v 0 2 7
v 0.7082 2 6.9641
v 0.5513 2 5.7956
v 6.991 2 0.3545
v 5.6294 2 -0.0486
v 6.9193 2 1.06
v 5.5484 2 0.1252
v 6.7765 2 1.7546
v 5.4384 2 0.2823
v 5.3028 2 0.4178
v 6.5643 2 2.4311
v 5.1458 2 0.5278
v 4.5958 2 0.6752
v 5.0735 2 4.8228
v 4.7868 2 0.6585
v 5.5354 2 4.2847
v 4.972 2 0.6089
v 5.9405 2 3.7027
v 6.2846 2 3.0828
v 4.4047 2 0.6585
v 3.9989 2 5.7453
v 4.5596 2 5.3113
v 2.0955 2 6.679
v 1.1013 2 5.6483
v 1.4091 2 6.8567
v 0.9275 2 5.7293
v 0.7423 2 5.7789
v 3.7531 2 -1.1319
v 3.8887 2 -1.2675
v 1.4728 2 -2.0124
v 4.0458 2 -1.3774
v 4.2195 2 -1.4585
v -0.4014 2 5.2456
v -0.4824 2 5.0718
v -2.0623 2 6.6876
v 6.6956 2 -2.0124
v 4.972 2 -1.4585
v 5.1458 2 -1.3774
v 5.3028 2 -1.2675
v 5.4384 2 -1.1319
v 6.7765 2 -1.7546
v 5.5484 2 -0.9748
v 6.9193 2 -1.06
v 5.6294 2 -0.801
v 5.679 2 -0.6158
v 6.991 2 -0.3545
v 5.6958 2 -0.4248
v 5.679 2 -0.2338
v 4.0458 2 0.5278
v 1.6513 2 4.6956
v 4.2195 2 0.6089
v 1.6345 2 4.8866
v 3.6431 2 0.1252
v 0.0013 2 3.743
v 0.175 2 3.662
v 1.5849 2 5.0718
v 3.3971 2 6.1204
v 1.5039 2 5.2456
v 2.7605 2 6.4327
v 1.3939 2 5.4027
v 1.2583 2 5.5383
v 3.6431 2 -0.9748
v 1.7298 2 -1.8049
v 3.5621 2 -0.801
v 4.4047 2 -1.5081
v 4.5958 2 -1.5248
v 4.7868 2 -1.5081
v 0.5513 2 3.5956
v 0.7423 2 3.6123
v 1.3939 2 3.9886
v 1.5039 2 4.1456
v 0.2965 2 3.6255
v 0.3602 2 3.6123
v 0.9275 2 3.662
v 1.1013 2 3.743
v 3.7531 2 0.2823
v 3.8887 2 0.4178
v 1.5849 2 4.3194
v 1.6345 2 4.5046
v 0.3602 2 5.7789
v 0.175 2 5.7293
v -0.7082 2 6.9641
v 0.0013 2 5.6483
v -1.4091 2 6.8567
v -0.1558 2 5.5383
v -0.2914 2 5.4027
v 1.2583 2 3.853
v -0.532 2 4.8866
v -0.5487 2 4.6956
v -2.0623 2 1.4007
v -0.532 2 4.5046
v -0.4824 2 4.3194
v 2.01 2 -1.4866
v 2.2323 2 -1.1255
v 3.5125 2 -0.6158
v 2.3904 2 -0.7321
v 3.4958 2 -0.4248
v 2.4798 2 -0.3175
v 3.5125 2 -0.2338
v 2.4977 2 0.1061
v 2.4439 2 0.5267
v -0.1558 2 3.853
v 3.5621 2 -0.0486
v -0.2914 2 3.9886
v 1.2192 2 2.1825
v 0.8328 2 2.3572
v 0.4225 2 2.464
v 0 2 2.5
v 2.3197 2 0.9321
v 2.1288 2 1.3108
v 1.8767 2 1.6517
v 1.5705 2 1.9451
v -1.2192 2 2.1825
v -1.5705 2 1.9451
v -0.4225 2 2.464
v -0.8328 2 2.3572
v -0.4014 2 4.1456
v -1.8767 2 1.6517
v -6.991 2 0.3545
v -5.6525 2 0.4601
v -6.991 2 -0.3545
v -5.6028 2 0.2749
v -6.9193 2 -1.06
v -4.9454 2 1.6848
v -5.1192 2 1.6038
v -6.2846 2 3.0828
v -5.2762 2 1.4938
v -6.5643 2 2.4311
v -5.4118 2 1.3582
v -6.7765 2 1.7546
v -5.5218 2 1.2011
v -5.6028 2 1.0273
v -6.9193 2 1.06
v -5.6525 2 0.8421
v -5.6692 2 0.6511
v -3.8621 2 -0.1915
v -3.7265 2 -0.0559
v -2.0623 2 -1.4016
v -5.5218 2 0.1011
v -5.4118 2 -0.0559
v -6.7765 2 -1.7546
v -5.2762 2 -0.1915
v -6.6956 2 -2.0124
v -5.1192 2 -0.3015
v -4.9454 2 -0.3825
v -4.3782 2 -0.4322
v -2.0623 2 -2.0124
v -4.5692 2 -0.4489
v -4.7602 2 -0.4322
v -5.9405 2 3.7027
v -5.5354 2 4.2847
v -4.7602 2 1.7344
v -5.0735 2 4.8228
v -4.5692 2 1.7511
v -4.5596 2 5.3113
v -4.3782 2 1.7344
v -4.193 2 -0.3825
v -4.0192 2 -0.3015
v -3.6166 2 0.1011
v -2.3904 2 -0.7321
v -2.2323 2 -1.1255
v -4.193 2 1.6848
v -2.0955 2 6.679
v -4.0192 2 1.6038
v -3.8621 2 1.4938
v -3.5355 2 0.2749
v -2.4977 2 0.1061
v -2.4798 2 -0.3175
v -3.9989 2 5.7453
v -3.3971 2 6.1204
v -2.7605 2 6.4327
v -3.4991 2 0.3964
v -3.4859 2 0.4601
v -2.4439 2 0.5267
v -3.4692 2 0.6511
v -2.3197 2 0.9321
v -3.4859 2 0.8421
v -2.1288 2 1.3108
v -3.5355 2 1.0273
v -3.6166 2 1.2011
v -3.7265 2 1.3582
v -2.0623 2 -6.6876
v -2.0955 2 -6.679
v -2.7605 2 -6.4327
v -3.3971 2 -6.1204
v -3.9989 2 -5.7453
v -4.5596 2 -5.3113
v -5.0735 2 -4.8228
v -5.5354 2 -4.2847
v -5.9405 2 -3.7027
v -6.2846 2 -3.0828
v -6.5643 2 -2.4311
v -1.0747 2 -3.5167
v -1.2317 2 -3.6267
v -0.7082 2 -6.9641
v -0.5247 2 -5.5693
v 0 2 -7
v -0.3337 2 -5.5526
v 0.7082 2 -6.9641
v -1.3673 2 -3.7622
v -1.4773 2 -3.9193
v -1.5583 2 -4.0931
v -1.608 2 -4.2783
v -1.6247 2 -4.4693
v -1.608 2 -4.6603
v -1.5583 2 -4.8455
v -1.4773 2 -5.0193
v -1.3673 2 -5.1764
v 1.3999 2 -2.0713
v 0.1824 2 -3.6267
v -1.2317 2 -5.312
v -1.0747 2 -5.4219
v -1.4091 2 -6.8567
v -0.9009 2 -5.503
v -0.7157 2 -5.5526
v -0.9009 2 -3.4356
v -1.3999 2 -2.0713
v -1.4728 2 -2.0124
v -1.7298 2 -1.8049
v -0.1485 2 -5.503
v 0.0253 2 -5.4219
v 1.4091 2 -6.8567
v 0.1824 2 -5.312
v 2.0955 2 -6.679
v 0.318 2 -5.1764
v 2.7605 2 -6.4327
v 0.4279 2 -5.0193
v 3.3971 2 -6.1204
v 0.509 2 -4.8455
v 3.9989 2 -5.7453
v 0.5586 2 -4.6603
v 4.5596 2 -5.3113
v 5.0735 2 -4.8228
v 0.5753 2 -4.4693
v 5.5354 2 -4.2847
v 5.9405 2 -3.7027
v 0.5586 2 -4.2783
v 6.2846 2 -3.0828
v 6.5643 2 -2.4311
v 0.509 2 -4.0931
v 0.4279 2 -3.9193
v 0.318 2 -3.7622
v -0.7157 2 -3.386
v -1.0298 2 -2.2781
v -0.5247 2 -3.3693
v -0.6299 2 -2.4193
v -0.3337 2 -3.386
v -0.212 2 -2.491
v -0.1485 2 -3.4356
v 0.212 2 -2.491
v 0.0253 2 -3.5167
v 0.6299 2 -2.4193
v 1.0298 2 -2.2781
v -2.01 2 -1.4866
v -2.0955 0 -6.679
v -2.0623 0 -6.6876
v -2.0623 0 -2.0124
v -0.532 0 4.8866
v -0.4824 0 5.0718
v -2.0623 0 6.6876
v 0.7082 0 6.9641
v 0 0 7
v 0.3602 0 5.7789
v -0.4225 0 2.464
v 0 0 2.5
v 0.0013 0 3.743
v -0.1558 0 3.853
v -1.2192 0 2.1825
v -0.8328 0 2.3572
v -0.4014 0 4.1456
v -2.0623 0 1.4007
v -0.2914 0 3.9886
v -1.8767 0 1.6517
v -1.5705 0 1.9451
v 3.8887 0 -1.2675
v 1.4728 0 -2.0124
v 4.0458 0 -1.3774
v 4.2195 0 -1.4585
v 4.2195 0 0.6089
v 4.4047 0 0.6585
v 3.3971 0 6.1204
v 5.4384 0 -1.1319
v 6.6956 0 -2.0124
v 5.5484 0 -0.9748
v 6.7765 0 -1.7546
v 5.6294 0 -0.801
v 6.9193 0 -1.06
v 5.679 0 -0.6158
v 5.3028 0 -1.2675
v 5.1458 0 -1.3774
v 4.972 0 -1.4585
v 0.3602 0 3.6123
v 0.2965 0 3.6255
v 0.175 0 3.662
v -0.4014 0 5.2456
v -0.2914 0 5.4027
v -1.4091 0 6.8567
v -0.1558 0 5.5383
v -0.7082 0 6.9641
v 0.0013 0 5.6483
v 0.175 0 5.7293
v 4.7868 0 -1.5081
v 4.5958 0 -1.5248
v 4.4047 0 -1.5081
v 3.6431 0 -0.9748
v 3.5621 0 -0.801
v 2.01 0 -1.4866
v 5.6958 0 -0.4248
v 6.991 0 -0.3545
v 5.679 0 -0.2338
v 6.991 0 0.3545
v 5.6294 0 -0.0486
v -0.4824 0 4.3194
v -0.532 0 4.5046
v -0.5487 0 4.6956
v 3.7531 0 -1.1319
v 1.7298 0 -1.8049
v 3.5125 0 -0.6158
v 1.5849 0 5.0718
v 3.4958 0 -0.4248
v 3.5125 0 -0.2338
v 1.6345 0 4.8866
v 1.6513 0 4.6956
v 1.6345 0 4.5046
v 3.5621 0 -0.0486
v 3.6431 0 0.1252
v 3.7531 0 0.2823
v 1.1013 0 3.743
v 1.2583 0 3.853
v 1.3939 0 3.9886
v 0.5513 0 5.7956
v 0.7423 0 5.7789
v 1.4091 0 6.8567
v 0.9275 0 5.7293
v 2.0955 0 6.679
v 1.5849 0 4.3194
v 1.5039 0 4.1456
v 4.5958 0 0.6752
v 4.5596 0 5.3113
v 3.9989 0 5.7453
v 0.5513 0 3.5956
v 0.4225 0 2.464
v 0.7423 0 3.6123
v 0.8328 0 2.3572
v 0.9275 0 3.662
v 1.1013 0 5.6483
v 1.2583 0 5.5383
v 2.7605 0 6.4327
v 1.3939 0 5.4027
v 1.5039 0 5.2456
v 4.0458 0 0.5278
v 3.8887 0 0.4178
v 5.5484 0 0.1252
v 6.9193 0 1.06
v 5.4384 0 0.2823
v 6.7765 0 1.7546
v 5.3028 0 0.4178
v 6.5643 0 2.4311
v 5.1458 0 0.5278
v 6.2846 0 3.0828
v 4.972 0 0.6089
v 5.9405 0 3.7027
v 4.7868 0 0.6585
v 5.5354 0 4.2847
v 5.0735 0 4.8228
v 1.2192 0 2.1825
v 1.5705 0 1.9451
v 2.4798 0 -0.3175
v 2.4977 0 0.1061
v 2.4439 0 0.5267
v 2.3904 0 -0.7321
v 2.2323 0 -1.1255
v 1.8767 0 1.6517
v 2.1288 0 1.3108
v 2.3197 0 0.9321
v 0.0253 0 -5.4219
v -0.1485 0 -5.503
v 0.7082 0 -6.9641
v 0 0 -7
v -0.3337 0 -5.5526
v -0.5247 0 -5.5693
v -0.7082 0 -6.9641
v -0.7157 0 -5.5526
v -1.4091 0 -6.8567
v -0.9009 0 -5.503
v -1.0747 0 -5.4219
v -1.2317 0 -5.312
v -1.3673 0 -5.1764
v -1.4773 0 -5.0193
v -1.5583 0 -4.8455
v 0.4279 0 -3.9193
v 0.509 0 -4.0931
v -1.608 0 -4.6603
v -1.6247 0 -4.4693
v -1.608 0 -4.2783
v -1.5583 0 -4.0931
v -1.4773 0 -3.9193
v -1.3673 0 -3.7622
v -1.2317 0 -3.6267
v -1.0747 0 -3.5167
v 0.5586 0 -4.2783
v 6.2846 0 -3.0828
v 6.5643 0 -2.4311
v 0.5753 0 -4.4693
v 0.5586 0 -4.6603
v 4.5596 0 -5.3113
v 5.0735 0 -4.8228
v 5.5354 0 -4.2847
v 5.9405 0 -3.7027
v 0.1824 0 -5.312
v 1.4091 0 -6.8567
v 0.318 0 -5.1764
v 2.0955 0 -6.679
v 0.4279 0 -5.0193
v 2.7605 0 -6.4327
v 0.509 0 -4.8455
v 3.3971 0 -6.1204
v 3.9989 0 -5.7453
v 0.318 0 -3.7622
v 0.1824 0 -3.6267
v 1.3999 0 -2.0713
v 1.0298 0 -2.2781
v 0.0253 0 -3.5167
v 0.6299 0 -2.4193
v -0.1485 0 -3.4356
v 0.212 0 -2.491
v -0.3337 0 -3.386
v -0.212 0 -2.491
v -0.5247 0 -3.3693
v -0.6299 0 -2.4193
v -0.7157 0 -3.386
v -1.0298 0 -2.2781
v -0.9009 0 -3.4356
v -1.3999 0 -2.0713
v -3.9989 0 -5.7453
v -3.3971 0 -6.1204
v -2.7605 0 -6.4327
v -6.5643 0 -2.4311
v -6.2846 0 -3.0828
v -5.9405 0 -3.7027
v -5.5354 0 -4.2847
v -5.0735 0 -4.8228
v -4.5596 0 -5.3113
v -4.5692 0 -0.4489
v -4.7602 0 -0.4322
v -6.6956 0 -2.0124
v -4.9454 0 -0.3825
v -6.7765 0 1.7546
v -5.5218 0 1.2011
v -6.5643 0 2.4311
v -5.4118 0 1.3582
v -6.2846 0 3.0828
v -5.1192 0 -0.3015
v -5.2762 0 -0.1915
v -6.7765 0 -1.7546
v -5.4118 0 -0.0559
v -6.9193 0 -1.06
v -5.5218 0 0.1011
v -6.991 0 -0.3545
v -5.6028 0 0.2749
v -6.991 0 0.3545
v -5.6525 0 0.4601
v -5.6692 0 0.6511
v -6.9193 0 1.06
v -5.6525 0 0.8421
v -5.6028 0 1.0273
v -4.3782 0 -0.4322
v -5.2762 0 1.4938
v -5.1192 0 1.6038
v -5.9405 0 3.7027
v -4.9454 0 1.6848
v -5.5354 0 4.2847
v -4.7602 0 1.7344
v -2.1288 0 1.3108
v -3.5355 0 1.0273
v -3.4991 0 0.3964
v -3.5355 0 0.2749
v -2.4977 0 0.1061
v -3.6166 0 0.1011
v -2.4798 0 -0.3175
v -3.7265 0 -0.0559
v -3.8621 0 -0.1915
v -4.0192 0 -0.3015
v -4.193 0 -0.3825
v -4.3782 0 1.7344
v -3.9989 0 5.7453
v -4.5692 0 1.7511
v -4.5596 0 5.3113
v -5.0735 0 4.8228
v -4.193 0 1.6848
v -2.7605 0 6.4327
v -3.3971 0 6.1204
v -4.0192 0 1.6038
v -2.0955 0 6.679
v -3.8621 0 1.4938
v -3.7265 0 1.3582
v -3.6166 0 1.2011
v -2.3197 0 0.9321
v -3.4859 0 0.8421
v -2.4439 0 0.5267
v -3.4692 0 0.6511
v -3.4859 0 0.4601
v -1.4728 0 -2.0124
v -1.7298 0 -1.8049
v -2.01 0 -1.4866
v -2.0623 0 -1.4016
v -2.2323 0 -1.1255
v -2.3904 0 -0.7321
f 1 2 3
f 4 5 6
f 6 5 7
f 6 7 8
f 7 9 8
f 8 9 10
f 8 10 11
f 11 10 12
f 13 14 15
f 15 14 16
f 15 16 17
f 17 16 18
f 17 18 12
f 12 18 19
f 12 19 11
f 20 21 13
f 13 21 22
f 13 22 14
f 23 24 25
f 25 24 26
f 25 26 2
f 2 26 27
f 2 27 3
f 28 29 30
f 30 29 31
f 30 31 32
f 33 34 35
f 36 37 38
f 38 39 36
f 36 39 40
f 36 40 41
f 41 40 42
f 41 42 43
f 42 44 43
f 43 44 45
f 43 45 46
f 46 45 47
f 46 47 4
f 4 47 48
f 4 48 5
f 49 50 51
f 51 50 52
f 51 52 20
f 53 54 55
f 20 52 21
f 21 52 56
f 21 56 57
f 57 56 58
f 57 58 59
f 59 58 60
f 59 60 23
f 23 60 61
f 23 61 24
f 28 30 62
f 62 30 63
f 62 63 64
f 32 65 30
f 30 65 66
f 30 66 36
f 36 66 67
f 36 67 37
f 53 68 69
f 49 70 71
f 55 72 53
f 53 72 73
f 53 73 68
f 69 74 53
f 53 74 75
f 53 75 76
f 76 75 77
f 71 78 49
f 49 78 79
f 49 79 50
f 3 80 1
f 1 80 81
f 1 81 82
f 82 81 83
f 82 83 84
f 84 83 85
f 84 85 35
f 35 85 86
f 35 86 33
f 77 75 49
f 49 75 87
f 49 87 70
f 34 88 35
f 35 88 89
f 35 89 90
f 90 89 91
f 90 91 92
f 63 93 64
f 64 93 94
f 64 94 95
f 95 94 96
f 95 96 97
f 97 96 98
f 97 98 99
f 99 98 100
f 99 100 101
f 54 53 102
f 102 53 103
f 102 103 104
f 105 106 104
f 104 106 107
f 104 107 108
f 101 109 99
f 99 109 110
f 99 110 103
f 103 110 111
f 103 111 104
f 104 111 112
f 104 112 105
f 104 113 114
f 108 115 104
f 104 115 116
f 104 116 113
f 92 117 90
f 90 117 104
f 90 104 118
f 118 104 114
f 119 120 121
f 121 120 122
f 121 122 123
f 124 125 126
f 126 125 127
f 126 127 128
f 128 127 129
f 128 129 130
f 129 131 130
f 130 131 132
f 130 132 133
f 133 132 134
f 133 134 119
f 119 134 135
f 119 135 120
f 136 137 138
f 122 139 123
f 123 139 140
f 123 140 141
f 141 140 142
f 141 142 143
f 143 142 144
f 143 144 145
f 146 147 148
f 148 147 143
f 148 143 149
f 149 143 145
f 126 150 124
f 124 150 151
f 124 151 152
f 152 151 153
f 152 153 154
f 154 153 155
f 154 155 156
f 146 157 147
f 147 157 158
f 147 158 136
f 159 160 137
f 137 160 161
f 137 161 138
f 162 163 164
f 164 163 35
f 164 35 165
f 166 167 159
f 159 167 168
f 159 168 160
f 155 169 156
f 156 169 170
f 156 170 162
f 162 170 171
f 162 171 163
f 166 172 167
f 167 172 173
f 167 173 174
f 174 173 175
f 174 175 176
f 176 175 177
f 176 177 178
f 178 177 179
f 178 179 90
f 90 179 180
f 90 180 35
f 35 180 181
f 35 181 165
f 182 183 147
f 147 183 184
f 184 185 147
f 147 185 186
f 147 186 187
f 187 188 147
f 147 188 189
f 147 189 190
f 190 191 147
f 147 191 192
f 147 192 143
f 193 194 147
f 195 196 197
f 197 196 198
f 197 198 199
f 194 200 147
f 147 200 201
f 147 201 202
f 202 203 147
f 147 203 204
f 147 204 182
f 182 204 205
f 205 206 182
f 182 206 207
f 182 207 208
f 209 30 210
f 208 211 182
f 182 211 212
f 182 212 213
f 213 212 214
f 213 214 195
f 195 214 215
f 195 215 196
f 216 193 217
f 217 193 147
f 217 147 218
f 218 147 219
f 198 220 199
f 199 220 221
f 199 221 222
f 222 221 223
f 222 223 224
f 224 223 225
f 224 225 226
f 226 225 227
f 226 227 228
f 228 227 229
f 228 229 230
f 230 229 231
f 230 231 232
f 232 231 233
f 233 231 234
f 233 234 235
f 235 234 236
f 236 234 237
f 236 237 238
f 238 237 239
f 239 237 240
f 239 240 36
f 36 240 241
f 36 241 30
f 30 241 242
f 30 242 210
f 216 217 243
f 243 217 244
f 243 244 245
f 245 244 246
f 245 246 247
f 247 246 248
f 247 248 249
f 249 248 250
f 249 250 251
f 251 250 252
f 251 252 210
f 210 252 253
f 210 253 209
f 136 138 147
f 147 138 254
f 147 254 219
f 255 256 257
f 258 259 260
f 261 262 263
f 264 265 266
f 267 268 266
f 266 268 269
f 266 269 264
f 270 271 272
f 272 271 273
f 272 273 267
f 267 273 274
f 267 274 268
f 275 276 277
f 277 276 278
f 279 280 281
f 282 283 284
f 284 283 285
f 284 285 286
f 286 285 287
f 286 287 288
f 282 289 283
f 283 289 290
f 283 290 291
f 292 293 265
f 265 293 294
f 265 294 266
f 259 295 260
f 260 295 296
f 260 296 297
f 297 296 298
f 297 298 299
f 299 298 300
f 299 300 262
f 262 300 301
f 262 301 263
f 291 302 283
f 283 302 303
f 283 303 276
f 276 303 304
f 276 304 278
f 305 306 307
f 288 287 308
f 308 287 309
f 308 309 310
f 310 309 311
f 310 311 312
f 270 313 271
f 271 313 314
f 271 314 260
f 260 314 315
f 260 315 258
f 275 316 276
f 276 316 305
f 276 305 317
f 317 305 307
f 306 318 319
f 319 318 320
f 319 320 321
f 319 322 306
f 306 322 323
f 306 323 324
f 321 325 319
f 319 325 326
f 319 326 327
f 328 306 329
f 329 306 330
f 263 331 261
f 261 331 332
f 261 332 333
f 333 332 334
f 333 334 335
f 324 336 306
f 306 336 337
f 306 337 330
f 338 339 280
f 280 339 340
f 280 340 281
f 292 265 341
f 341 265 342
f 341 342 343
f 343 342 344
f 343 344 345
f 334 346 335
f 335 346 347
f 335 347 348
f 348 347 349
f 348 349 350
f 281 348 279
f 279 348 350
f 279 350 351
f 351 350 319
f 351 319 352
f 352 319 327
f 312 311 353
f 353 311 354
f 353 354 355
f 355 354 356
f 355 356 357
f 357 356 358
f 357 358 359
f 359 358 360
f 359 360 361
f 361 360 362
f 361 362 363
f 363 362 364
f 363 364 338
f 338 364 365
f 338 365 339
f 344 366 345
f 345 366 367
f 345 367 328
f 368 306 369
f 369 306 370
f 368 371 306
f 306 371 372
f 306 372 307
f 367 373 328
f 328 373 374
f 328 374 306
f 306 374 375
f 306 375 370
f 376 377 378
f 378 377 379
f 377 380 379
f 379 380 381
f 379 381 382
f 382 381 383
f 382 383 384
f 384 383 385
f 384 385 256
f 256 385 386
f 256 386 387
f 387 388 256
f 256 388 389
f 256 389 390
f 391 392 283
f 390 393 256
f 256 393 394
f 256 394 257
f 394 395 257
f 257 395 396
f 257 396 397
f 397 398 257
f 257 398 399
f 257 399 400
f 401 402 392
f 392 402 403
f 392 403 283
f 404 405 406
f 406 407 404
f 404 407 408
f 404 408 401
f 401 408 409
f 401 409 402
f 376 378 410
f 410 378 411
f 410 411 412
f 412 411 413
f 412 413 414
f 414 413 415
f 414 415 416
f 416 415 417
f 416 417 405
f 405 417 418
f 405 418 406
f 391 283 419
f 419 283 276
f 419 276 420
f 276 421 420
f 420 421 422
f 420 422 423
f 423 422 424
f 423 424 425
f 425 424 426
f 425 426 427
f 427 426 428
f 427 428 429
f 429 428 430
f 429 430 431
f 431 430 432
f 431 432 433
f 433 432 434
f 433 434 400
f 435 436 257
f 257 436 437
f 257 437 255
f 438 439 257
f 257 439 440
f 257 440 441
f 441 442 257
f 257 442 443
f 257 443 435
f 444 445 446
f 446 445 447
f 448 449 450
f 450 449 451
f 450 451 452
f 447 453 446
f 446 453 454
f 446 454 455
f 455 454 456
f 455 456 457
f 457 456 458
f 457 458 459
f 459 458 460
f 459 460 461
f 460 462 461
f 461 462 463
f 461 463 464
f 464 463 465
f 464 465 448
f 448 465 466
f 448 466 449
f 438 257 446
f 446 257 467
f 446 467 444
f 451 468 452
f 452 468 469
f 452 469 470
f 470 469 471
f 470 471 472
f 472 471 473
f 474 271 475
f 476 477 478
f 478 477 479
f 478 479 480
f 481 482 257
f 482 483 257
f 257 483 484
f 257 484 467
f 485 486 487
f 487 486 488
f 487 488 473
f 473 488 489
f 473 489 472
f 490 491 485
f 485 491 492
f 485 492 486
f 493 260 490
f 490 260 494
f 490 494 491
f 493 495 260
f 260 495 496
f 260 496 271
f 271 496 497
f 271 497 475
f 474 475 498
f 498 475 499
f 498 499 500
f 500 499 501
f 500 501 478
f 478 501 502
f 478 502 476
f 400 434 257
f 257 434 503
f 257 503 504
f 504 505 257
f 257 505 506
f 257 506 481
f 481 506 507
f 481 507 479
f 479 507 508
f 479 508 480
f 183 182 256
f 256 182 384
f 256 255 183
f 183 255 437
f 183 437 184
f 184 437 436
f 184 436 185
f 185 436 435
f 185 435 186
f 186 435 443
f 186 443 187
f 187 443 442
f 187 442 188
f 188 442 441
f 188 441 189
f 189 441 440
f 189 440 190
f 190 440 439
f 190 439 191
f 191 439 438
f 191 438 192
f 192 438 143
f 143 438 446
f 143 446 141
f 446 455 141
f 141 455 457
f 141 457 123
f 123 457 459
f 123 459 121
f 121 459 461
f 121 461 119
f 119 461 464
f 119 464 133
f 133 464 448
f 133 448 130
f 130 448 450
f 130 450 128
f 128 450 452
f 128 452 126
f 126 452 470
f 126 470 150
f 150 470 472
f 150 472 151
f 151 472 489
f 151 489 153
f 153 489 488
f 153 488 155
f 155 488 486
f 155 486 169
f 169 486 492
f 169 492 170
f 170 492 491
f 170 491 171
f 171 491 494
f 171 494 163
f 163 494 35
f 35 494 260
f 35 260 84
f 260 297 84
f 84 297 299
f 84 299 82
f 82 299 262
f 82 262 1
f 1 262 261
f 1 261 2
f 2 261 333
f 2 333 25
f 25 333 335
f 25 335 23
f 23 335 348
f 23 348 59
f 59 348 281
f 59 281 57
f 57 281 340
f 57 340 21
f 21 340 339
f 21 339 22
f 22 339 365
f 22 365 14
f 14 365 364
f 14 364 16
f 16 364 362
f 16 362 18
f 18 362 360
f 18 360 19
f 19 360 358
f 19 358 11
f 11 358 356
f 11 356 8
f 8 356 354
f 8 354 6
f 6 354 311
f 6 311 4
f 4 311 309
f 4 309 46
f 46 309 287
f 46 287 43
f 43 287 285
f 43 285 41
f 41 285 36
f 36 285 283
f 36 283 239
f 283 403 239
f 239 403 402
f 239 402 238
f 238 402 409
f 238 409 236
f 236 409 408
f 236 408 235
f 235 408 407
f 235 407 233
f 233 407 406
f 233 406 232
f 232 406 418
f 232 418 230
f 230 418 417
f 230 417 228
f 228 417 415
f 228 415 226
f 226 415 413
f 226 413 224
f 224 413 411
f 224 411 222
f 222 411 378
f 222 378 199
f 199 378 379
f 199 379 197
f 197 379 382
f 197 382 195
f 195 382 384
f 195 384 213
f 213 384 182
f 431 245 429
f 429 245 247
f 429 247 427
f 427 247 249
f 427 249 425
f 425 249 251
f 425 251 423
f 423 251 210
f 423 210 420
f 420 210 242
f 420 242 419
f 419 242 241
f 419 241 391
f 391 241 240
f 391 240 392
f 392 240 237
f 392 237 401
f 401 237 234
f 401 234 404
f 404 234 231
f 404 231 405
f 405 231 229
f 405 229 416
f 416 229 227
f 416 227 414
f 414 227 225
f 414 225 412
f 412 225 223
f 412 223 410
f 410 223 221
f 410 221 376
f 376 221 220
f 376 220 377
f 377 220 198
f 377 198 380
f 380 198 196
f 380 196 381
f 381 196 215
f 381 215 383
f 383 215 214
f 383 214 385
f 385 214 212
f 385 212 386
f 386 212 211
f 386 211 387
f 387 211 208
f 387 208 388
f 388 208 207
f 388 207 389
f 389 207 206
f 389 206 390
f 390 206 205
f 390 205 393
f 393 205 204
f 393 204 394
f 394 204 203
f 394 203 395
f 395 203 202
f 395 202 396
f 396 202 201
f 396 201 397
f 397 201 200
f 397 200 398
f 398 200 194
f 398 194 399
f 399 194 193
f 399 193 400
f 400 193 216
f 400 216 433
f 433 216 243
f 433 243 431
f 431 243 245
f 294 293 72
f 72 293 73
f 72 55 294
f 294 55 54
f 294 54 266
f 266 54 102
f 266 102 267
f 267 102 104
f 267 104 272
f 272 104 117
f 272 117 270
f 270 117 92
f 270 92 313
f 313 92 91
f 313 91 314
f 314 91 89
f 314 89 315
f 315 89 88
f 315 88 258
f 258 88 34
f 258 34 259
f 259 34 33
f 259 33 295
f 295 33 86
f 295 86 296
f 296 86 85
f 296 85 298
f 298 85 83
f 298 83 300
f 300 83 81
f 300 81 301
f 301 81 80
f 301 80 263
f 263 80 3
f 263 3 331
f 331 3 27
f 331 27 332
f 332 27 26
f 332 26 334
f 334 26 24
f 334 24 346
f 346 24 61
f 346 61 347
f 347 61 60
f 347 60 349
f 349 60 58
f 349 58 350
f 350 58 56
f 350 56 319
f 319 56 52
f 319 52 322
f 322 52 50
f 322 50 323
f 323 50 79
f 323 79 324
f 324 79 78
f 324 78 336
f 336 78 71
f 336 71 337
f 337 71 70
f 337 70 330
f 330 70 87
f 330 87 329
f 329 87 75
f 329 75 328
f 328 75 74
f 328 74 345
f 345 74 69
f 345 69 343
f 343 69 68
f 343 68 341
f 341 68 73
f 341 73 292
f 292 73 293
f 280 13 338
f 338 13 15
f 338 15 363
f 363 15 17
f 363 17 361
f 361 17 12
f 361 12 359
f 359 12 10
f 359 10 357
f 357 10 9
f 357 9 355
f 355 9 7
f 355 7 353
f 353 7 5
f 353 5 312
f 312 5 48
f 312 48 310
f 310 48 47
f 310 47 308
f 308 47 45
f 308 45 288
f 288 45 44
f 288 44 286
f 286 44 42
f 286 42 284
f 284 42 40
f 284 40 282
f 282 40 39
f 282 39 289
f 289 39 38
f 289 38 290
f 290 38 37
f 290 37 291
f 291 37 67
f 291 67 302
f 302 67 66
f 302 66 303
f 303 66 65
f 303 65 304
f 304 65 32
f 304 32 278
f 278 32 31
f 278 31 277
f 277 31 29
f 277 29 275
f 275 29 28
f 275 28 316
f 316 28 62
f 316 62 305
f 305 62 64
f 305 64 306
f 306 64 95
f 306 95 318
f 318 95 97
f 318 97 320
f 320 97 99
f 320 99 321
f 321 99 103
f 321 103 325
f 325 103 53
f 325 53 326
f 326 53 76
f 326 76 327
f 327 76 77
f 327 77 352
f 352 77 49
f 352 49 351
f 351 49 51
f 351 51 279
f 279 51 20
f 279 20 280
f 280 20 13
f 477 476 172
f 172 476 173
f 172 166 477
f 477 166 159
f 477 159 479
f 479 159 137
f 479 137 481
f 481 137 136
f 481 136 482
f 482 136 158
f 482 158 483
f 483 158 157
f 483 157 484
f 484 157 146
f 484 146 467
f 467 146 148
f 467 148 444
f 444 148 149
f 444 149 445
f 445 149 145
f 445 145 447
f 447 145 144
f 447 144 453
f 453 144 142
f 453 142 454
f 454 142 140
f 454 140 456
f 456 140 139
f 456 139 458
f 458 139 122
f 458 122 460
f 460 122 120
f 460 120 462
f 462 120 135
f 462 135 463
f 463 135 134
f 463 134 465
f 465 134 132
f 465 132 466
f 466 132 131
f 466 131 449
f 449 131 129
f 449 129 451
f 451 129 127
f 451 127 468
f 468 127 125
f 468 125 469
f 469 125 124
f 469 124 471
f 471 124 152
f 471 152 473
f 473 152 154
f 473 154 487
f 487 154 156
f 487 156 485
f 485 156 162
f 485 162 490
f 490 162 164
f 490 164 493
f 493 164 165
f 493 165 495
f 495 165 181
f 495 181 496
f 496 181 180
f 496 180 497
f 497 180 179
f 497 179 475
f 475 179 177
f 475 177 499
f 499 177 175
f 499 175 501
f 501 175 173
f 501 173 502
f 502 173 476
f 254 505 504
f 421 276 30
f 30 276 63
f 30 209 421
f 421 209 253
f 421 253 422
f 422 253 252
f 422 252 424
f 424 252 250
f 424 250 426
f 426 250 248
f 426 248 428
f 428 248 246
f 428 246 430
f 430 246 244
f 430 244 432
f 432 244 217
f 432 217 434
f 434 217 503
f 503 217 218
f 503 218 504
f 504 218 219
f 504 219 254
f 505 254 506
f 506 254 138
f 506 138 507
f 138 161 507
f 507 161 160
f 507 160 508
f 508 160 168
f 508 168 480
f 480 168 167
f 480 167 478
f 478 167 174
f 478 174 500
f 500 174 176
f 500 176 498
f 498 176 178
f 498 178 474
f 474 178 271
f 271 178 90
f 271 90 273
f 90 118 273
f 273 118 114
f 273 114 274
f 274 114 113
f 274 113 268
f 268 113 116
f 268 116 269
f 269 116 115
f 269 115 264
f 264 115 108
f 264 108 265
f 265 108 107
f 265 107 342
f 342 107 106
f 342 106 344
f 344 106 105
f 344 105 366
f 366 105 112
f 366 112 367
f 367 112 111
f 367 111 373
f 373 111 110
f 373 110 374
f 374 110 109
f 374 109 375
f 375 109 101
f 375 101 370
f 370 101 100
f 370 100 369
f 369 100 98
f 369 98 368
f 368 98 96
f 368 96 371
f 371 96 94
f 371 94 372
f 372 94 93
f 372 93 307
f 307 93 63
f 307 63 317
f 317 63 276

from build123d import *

# Parameters (mm, degrees)
SKETCH_1_R                         = 7
EXTRUDE_1_DEPTH                    = 2
SKETCH_2_R                         = 1.1
CUT_EXTRUDE_1_DEPTH                = 2
PATTERN_CIRCULAR_1_COUNT           = 2
PATTERN_CIRCULAR_1_ANGLE           = 90
PATTERN_CIRCULAR_1_COPY_1_SKETCH_R = 1.1
PATTERN_CIRCULAR_1_COPY_1_DEPTH    = 2
SKETCH_3_R                         = 2.5
CUT_EXTRUDE_2_DEPTH                = 2


with BuildPart() as part:
    # 草图1 → 凸台-拉伸1 (new body)
    with BuildSketch(Plane(origin=(0, 0, 0), x_dir=(1, 0, 0), z_dir=(0, 1, 0))):
        Circle(SKETCH_1_R)
    extrude(amount=EXTRUDE_1_DEPTH)

    # 草图2 → 切除-拉伸1 (cut)
    with BuildSketch(Plane(origin=(0, 2, 0), x_dir=(1, 0, 0), z_dir=(0, 1, 0))):
        with Locations((-0.524681621, 4.469307463)):
            Circle(SKETCH_2_R)
    cut_extrude_1 = extrude(amount=-CUT_EXTRUDE_1_DEPTH, mode=Mode.SUBTRACT)

    # 镜向1: 切除-拉伸1 across plane
    add(cut_extrude_1.mirror(Plane(origin=(0.013284469, 0, 0.113158862), x_dir=(0.9931794361720326, 0, -0.11659591573036844), z_dir=(0.11659591573036844, 0, 0.9931794361720327))), mode=Mode.SUBTRACT)

    # 阵列(圆周)1: 切除-拉伸1 ×2 about axis
    pattern_circular_1_axis = Axis((0.013284469, 7.444722215, 0.113158862), (0, -1, 0))
    for i in range(1, PATTERN_CIRCULAR_1_COUNT):
        add(cut_extrude_1.rotate(pattern_circular_1_axis, i * PATTERN_CIRCULAR_1_ANGLE / (PATTERN_CIRCULAR_1_COUNT - 1)), mode=Mode.SUBTRACT)

    # 阵列(圆周)1 copy 1 sketch → 阵列(圆周)1 copy 1 (cut)
    with BuildSketch(Plane(origin=(-0.099874394, 2, 0.126443331), x_dir=(0.23160133169009495, 0, 0.9728107848699944), z_dir=(0, 1, 0))):
        with Locations((-0.524681621, -4.469307463)):
            Circle(PATTERN_CIRCULAR_1_COPY_1_SKETCH_R)
    extrude(amount=-PATTERN_CIRCULAR_1_COPY_1_DEPTH, mode=Mode.SUBTRACT)

    # 草图3 → 切除-拉伸2 (cut)
    with BuildSketch(Plane(origin=(0, 2, 0), x_dir=(1, 0, 0), z_dir=(0, 1, 0))):
        Circle(SKETCH_3_R)
    extrude(amount=-CUT_EXTRUDE_2_DEPTH, mode=Mode.SUBTRACT)


solid = part.part
